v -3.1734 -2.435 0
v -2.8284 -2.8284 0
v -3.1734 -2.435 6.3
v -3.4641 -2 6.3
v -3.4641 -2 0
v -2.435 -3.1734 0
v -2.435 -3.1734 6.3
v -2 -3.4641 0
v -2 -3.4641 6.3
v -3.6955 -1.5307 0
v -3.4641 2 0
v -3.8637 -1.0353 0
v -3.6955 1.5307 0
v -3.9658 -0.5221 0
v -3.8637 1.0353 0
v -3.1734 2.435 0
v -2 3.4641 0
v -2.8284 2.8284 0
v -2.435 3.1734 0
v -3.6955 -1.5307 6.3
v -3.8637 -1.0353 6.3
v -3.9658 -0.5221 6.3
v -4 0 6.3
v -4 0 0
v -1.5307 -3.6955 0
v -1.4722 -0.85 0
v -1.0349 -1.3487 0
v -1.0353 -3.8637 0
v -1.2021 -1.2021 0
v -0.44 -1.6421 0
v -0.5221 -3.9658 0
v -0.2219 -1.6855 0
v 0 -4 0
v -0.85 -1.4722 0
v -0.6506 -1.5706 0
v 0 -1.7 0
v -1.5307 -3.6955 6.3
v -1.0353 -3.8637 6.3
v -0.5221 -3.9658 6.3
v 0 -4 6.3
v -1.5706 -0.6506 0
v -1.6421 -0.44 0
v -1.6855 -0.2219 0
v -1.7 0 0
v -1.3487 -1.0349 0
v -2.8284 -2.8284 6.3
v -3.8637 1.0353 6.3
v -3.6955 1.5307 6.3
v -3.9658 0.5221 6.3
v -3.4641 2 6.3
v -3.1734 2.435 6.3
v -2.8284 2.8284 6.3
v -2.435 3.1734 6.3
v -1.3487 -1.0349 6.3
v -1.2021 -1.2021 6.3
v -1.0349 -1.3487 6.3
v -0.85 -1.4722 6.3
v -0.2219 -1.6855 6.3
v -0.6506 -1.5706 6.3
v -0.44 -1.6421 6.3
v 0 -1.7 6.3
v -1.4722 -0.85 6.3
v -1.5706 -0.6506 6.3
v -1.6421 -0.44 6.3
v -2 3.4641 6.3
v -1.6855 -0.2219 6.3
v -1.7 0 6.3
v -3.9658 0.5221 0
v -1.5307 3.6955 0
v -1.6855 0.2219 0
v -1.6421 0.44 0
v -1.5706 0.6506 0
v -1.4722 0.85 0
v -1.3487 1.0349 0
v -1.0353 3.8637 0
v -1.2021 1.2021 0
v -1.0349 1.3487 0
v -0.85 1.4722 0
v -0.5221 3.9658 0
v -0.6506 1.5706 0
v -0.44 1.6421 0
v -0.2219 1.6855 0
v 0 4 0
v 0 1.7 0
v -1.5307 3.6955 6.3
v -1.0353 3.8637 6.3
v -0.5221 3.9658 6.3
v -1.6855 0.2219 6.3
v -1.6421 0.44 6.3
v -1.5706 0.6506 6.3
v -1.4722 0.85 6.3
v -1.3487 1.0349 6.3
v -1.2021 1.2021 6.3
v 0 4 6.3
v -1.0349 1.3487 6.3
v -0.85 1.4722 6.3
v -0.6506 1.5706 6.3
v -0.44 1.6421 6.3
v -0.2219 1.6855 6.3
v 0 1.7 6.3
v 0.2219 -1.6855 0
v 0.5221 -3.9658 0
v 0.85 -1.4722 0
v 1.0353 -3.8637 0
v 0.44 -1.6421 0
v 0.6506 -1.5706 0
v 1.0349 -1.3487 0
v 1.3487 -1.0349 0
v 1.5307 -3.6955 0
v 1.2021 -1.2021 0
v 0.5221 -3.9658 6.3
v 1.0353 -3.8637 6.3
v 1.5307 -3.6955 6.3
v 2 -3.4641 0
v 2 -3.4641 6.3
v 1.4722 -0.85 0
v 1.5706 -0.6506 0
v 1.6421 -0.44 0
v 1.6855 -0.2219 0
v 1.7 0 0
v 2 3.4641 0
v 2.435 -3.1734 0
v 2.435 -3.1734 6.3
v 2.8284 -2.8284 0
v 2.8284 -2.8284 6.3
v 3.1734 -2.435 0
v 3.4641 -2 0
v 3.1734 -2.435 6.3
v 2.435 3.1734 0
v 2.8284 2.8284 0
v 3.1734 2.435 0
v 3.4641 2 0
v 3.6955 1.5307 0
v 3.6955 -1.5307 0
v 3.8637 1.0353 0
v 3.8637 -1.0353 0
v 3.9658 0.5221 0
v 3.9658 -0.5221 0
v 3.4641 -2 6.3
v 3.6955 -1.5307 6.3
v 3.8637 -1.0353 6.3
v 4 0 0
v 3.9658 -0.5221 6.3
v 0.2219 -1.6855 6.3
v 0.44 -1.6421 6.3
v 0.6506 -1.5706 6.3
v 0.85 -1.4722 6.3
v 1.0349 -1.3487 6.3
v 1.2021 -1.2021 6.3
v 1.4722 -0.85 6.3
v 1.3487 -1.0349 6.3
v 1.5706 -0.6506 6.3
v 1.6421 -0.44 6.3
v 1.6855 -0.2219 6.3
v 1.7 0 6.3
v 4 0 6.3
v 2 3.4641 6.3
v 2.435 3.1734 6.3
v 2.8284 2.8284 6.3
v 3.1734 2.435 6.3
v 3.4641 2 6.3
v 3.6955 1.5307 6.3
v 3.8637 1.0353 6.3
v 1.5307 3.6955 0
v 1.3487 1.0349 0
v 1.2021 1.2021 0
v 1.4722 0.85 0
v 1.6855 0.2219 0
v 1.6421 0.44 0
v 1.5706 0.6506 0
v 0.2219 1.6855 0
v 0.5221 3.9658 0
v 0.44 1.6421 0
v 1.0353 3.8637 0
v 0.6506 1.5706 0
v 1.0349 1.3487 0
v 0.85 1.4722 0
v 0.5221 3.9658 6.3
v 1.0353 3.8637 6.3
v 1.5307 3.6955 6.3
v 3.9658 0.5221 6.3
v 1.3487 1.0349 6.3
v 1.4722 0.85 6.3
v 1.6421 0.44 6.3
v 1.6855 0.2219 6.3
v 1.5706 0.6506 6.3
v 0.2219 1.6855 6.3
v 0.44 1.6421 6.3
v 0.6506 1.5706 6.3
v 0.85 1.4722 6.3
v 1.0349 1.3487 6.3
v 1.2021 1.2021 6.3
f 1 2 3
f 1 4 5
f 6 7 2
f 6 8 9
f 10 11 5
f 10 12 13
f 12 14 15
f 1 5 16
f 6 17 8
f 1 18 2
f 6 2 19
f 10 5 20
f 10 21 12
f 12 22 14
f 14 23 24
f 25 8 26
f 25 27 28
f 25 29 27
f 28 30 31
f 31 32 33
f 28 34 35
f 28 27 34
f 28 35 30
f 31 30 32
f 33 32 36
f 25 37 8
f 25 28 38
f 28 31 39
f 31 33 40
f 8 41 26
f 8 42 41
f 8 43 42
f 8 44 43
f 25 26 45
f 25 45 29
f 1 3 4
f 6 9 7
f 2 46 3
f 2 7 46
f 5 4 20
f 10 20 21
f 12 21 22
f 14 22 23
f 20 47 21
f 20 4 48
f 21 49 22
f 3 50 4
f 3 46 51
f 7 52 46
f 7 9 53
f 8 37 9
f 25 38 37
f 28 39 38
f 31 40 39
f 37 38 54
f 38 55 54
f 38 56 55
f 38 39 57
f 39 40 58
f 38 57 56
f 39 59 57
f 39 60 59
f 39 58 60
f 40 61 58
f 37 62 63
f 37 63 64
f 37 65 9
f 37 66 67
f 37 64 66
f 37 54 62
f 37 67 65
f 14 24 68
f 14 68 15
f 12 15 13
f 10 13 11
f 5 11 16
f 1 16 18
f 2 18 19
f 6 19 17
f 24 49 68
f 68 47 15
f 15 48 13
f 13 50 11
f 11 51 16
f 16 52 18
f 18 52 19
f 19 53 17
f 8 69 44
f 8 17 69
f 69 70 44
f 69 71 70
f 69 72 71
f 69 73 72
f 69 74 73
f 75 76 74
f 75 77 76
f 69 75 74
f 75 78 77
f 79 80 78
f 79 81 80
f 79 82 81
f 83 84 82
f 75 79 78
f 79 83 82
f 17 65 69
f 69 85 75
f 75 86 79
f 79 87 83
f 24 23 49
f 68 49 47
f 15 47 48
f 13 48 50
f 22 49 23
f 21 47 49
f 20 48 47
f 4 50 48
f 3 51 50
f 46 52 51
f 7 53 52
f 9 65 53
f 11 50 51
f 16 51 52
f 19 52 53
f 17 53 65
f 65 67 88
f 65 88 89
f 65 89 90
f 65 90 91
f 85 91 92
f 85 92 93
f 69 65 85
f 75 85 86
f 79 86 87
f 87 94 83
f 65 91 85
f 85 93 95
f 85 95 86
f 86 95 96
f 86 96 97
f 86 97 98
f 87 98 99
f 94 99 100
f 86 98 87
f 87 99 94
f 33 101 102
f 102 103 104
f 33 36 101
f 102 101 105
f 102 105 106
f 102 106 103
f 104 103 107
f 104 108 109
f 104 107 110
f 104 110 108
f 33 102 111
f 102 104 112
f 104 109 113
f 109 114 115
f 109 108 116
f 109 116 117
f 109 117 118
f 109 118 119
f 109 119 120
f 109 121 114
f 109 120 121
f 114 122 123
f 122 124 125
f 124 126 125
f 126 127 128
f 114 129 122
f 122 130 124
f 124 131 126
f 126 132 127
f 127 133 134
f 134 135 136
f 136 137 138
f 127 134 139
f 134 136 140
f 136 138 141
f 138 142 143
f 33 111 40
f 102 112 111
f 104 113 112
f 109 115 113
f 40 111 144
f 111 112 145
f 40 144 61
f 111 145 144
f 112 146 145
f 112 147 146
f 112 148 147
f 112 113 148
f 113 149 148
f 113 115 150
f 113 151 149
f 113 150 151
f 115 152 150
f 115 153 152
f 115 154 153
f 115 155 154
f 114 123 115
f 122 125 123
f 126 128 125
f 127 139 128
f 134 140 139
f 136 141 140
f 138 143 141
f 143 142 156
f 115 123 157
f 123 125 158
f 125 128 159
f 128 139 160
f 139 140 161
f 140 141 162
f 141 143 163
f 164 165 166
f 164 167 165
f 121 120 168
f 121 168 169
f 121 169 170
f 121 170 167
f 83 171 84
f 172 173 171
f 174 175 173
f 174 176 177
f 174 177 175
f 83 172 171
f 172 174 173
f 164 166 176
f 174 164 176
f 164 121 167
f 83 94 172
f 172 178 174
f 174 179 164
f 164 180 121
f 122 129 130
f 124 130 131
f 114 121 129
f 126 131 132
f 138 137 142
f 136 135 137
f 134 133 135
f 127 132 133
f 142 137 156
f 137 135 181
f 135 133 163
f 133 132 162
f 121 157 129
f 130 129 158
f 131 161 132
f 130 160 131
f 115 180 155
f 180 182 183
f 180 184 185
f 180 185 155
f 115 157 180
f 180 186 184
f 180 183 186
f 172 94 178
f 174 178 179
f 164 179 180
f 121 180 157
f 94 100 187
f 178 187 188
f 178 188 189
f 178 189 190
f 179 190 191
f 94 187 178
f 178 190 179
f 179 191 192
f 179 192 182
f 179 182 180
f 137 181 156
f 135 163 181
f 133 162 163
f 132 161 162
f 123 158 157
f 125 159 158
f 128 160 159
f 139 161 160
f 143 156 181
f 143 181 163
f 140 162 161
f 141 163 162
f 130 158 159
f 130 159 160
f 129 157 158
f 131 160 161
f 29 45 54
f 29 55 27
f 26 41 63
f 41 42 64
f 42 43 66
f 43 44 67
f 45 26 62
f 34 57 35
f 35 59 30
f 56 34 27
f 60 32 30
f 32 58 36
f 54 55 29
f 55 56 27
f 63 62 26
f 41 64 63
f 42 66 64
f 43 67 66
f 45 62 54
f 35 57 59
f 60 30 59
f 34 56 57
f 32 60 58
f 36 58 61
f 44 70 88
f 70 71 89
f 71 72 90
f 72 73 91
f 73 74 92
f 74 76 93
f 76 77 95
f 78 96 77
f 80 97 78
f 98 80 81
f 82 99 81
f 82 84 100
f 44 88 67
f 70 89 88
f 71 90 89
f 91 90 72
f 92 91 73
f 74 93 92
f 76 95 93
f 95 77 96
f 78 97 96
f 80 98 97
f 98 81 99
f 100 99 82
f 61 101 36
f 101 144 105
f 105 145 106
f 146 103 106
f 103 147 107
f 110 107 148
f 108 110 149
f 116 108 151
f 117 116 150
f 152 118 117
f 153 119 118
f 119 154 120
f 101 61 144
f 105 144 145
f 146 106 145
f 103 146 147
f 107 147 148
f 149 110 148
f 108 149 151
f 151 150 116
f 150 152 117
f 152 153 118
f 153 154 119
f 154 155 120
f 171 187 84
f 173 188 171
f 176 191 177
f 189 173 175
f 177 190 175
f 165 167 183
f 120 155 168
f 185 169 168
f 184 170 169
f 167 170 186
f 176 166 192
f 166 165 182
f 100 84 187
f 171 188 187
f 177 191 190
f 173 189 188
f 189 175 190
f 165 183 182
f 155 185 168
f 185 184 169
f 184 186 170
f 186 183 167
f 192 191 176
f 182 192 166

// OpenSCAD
// Jetson standoff spacer — 4 needed + spares (print 8). Sits between the
// flat riser deck and the Orin Nano carrier at each mount bore; M3x16
// passes through carrier + spacer + deck into the underslung heat-set.
// 6.3 tall -> carrier board plane at trunk z 78.2: clears the mast base
// flange corner under the Jetson edge AND lifts the port row over the
// deck slot (see riser_bay.scad header).
$fn = 48;
difference() {
    cylinder(d = 8, h = 6.3);
    translate([0, 0, -0.05]) cylinder(d = 3.4, h = 6.5);
}
